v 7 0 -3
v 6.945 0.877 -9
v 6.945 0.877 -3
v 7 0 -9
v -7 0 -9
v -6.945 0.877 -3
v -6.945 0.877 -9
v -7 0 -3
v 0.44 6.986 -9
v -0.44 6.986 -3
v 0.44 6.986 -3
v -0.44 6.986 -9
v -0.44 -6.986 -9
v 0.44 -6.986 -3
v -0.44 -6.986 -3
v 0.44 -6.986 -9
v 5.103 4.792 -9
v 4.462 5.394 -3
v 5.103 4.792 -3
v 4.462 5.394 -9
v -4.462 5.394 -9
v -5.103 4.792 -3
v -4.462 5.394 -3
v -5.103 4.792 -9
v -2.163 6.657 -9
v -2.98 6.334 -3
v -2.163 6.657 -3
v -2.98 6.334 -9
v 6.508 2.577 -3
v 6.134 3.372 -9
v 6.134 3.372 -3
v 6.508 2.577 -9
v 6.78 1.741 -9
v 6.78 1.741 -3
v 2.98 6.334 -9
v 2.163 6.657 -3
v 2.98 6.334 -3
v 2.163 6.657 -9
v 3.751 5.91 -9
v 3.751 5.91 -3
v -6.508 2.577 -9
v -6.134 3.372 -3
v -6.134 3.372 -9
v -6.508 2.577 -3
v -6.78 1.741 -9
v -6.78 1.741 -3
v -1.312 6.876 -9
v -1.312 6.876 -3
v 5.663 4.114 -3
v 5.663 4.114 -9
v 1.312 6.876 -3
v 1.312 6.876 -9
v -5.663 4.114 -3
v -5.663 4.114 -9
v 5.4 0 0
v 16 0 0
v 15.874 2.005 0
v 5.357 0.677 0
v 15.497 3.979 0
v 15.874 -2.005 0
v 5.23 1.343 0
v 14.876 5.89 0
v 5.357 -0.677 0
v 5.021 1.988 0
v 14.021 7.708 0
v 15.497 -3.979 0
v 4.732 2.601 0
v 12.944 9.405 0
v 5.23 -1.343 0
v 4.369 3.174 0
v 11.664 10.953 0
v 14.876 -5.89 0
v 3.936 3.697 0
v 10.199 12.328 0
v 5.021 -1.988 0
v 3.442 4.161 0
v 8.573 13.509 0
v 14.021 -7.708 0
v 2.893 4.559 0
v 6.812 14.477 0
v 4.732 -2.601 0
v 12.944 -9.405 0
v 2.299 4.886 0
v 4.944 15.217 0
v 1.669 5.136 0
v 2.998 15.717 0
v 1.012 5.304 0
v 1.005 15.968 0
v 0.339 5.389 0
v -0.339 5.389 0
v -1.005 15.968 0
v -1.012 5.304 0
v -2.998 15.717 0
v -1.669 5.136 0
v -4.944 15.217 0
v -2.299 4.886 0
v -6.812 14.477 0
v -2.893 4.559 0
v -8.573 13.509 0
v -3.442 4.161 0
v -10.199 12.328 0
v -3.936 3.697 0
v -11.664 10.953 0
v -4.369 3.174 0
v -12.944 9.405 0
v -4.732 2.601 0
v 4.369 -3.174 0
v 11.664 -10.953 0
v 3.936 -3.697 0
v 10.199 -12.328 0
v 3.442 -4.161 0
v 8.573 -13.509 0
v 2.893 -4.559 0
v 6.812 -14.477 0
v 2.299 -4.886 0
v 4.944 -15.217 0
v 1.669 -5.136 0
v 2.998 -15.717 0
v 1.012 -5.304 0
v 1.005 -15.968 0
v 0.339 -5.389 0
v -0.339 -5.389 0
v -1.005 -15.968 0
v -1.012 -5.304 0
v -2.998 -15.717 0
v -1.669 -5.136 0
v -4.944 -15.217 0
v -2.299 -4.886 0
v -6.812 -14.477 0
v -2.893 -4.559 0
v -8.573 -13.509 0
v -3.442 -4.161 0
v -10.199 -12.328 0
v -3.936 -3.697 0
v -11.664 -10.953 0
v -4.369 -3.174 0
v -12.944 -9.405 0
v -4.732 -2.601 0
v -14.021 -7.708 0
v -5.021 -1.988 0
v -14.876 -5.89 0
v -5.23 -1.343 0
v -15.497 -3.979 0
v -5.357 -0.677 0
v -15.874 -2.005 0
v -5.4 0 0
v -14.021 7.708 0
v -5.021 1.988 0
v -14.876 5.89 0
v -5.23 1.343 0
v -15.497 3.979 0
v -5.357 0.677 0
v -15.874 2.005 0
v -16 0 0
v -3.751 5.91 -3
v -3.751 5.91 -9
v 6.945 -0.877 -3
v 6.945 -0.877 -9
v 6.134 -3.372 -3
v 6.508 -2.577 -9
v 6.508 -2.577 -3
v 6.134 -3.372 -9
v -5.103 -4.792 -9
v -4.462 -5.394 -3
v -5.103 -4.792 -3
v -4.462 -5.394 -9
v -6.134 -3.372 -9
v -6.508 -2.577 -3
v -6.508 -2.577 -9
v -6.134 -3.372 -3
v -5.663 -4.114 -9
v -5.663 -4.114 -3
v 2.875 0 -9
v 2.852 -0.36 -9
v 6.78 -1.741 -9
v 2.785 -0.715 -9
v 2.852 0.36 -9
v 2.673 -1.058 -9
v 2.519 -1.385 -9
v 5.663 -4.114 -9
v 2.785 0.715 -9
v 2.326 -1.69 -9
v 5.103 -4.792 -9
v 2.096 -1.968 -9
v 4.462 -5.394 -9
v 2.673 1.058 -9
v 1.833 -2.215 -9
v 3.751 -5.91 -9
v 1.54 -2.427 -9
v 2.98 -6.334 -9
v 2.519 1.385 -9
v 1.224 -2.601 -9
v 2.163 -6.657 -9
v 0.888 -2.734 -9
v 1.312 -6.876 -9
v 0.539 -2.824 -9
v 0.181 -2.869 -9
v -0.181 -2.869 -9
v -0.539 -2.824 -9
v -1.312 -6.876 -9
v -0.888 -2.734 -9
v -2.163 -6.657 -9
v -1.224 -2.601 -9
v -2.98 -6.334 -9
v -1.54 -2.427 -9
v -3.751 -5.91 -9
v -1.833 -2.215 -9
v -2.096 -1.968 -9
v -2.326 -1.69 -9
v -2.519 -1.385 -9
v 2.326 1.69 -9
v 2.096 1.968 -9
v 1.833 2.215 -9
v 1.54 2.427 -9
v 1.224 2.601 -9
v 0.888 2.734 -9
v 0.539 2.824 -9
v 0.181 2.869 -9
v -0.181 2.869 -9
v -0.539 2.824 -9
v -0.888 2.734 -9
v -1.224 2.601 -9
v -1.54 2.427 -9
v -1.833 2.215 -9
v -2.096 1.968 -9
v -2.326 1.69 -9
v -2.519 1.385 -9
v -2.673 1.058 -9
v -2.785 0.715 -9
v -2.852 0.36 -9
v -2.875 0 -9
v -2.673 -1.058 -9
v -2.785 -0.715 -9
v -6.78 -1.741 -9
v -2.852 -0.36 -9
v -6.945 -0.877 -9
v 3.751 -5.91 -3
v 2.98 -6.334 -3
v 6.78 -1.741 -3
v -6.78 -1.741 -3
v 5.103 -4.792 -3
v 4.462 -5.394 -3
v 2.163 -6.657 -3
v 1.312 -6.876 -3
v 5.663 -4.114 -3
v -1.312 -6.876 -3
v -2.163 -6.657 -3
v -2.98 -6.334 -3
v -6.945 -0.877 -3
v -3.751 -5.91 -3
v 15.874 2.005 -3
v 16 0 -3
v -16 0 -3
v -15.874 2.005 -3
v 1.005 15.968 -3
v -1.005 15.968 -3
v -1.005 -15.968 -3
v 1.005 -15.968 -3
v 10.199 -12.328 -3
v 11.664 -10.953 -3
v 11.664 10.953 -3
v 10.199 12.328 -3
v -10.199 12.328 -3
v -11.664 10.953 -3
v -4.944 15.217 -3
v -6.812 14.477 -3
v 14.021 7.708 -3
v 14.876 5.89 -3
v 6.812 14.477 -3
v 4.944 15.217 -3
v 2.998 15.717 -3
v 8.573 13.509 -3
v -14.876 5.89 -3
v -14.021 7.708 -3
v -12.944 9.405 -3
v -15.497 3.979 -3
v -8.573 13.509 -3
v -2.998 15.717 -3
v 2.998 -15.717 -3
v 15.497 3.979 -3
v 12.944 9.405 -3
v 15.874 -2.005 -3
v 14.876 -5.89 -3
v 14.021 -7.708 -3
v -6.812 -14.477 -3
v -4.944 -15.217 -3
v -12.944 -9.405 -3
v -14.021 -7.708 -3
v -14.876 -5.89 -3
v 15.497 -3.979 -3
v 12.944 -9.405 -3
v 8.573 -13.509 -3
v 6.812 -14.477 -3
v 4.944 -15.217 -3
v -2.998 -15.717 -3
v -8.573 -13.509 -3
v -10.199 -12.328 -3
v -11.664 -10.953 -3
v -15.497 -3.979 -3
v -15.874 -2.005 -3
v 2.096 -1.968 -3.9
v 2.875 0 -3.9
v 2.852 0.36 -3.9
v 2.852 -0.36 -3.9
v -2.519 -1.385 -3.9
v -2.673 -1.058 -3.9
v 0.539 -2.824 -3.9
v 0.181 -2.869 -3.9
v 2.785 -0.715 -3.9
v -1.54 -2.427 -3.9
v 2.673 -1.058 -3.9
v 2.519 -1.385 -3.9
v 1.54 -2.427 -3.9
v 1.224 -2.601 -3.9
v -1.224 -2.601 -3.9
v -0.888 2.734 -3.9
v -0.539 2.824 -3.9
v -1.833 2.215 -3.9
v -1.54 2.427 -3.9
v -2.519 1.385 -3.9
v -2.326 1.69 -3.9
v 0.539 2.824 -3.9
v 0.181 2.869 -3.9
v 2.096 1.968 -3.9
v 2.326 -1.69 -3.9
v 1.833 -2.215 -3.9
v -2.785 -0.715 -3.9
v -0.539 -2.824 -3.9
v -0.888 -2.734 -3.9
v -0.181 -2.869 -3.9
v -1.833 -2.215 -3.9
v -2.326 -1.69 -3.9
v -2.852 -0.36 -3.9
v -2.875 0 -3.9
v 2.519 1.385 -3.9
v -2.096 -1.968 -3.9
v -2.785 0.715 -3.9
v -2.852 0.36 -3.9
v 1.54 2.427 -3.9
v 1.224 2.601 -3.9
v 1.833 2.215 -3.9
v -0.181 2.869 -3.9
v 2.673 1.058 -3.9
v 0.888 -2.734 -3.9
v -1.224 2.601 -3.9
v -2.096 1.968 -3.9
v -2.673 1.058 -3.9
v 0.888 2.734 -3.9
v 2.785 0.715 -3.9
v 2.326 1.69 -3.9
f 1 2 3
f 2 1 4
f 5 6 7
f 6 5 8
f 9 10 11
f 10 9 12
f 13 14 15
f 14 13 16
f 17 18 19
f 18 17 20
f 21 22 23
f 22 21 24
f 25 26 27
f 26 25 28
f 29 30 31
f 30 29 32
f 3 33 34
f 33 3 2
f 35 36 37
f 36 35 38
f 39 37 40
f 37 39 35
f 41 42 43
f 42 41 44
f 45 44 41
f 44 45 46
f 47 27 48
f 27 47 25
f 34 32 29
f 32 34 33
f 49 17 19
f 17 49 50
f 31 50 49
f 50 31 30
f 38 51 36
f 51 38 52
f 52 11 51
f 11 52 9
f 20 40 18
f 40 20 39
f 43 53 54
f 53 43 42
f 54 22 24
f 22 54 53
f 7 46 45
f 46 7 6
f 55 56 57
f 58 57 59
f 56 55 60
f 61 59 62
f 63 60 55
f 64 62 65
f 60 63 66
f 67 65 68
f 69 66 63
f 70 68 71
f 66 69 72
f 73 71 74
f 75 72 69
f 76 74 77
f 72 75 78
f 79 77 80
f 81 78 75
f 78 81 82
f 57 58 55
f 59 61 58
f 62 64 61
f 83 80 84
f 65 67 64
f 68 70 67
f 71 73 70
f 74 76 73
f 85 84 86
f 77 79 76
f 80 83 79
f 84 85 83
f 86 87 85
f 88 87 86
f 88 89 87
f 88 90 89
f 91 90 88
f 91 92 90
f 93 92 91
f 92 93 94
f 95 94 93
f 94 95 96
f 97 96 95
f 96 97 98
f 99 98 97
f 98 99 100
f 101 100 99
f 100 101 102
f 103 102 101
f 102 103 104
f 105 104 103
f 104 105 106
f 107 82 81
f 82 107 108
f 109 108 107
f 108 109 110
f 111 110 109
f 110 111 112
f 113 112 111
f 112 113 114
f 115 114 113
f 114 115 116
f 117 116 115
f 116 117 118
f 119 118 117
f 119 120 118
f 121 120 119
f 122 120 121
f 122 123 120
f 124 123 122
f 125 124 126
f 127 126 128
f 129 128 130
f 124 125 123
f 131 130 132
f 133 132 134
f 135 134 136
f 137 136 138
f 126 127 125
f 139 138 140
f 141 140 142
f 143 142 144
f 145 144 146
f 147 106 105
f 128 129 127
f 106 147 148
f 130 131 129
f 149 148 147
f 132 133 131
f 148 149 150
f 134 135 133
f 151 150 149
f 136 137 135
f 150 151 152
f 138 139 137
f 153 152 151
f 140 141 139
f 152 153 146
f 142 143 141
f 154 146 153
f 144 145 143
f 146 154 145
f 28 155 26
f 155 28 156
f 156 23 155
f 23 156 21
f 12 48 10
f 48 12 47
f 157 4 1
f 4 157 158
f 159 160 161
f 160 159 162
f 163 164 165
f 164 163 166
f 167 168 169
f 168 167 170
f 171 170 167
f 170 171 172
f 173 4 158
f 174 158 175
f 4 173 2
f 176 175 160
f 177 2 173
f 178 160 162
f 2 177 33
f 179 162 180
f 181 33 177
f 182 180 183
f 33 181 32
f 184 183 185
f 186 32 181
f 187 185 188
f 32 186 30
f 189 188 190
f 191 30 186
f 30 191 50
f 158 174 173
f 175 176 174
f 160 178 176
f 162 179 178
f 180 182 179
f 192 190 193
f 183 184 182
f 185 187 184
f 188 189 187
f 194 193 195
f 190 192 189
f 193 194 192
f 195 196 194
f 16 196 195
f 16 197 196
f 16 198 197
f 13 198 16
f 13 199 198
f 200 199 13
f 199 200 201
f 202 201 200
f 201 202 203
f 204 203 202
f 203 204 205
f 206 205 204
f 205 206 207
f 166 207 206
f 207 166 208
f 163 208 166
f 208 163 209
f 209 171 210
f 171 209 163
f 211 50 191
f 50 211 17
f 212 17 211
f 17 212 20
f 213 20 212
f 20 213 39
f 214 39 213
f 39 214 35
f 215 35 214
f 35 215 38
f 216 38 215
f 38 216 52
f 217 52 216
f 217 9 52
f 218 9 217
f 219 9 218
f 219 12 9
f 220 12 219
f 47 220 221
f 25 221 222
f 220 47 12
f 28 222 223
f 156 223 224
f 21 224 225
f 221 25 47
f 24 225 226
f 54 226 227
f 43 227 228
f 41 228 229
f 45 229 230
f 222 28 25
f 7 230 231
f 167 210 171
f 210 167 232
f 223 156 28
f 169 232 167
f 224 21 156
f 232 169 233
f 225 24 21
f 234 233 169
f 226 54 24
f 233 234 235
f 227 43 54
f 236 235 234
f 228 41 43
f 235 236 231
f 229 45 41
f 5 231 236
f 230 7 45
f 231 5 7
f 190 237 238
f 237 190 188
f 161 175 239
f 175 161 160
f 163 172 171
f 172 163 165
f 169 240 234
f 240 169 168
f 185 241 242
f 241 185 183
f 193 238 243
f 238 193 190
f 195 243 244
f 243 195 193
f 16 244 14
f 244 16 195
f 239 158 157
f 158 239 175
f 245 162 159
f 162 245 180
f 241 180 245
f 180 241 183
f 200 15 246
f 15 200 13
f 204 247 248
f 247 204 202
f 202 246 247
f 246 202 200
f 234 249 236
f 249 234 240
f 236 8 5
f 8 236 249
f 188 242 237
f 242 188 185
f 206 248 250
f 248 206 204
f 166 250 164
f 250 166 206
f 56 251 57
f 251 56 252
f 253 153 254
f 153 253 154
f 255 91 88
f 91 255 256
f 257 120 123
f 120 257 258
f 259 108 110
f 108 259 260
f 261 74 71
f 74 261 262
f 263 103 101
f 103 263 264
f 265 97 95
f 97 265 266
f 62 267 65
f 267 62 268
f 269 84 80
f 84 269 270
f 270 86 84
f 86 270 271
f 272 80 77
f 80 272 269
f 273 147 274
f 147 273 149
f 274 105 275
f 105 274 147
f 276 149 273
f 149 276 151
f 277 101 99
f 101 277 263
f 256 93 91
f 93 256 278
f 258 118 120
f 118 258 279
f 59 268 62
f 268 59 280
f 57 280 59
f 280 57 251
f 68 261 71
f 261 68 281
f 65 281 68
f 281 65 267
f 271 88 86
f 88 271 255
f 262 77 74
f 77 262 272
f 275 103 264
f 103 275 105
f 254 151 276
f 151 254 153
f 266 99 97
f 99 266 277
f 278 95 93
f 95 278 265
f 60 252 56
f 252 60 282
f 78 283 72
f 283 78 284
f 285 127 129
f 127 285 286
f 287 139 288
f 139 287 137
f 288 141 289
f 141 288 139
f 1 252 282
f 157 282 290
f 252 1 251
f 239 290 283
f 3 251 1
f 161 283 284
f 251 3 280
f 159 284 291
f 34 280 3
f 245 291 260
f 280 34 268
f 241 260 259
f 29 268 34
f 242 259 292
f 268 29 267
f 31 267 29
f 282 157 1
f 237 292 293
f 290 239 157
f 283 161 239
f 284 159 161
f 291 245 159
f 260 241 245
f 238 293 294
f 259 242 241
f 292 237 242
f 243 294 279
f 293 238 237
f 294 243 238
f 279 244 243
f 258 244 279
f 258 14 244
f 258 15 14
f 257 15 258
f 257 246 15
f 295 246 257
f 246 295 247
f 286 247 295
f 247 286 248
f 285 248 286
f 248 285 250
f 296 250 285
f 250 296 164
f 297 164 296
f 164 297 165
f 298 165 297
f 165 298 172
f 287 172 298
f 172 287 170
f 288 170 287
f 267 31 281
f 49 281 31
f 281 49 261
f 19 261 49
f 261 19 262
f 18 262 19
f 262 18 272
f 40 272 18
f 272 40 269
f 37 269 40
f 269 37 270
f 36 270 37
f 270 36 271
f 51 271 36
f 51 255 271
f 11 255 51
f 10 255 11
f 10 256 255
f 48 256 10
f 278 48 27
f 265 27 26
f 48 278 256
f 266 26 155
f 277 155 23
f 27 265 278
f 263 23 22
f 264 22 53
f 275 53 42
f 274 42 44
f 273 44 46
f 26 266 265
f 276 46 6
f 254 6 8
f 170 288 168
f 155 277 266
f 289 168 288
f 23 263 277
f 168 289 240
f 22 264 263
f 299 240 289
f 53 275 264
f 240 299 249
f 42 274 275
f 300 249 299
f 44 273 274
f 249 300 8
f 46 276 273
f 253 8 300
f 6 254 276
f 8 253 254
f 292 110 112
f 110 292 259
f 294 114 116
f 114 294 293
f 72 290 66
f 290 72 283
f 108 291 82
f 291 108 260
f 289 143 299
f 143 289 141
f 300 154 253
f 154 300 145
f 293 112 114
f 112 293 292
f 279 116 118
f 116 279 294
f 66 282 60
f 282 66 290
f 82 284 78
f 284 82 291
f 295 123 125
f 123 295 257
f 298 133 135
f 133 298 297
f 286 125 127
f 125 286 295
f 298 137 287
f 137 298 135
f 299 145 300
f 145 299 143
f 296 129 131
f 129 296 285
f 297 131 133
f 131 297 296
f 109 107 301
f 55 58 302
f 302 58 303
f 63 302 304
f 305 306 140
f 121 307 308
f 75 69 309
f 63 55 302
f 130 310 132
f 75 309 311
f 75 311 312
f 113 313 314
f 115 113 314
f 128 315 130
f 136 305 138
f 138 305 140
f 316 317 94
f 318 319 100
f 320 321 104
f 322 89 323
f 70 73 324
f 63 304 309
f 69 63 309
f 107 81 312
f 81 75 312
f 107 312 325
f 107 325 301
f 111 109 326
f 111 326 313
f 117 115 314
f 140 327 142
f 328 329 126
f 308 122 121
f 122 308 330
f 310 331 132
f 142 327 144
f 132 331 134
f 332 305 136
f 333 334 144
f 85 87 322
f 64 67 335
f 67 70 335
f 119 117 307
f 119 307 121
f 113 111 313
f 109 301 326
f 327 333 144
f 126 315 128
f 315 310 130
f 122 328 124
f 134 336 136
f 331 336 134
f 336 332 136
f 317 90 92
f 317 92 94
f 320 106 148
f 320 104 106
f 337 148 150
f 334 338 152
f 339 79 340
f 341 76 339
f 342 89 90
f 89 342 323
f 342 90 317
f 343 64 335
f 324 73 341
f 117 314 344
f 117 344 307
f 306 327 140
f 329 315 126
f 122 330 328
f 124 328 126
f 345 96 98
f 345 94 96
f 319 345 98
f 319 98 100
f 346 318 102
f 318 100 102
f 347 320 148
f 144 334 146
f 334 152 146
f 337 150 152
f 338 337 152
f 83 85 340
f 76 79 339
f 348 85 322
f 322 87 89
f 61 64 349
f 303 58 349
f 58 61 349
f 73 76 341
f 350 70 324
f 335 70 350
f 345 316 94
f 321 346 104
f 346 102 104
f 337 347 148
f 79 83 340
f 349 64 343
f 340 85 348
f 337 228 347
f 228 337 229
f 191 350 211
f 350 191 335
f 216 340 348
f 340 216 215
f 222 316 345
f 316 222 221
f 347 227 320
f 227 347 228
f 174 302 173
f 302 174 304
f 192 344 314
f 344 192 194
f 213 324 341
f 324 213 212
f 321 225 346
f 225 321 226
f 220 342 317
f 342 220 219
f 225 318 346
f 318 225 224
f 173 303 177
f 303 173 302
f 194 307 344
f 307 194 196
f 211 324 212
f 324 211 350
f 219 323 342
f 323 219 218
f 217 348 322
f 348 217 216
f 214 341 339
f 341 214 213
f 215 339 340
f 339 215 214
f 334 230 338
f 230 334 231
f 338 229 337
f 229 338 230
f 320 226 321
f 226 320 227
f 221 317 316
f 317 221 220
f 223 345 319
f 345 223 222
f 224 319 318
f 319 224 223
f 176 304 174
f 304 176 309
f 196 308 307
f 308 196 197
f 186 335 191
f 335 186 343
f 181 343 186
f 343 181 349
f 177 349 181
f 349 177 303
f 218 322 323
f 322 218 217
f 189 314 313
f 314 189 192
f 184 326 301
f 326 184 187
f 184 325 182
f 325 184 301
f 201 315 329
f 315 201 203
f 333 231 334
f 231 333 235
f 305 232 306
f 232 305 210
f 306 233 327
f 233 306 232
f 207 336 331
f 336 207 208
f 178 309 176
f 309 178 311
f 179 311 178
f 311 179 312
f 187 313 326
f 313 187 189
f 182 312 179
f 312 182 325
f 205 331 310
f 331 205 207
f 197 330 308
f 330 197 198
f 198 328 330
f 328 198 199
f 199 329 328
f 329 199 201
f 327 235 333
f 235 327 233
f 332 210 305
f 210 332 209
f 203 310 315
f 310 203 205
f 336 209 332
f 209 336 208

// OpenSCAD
$fn = 50;


difference() {
	union() {
		translate(v = [0, 0, -9.0000000000]) {
			cylinder(h = 9, r = 7.0000000000);
		}
		translate(v = [0, 0, -3.0000000000]) {
			cylinder(h = 3, r = 16.0000000000);
		}
	}
	union() {
		translate(v = [0, 0, 0]) {
			rotate(a = [0, 0, 0]) {
				difference() {
					union() {
						#translate(v = [0, 0, -9.0000000000]) {
							cylinder(h = 9, r = 2.6000000000);
						}
						#translate(v = [0, 0, -3.9000000000]) {
							cylinder(h = 3.9000000000, r1 = 2.8750000000, r2 = 5.4000000000);
						}
						#translate(v = [0, 0, -9.0000000000]) {
							cylinder(h = 9, r = 2.8750000000);
						}
						#translate(v = [0, 0, -9.0000000000]) {
							cylinder(h = 9, r = 2.6000000000);
						}
					}
					union();
				}
			}
		}
	}
}
